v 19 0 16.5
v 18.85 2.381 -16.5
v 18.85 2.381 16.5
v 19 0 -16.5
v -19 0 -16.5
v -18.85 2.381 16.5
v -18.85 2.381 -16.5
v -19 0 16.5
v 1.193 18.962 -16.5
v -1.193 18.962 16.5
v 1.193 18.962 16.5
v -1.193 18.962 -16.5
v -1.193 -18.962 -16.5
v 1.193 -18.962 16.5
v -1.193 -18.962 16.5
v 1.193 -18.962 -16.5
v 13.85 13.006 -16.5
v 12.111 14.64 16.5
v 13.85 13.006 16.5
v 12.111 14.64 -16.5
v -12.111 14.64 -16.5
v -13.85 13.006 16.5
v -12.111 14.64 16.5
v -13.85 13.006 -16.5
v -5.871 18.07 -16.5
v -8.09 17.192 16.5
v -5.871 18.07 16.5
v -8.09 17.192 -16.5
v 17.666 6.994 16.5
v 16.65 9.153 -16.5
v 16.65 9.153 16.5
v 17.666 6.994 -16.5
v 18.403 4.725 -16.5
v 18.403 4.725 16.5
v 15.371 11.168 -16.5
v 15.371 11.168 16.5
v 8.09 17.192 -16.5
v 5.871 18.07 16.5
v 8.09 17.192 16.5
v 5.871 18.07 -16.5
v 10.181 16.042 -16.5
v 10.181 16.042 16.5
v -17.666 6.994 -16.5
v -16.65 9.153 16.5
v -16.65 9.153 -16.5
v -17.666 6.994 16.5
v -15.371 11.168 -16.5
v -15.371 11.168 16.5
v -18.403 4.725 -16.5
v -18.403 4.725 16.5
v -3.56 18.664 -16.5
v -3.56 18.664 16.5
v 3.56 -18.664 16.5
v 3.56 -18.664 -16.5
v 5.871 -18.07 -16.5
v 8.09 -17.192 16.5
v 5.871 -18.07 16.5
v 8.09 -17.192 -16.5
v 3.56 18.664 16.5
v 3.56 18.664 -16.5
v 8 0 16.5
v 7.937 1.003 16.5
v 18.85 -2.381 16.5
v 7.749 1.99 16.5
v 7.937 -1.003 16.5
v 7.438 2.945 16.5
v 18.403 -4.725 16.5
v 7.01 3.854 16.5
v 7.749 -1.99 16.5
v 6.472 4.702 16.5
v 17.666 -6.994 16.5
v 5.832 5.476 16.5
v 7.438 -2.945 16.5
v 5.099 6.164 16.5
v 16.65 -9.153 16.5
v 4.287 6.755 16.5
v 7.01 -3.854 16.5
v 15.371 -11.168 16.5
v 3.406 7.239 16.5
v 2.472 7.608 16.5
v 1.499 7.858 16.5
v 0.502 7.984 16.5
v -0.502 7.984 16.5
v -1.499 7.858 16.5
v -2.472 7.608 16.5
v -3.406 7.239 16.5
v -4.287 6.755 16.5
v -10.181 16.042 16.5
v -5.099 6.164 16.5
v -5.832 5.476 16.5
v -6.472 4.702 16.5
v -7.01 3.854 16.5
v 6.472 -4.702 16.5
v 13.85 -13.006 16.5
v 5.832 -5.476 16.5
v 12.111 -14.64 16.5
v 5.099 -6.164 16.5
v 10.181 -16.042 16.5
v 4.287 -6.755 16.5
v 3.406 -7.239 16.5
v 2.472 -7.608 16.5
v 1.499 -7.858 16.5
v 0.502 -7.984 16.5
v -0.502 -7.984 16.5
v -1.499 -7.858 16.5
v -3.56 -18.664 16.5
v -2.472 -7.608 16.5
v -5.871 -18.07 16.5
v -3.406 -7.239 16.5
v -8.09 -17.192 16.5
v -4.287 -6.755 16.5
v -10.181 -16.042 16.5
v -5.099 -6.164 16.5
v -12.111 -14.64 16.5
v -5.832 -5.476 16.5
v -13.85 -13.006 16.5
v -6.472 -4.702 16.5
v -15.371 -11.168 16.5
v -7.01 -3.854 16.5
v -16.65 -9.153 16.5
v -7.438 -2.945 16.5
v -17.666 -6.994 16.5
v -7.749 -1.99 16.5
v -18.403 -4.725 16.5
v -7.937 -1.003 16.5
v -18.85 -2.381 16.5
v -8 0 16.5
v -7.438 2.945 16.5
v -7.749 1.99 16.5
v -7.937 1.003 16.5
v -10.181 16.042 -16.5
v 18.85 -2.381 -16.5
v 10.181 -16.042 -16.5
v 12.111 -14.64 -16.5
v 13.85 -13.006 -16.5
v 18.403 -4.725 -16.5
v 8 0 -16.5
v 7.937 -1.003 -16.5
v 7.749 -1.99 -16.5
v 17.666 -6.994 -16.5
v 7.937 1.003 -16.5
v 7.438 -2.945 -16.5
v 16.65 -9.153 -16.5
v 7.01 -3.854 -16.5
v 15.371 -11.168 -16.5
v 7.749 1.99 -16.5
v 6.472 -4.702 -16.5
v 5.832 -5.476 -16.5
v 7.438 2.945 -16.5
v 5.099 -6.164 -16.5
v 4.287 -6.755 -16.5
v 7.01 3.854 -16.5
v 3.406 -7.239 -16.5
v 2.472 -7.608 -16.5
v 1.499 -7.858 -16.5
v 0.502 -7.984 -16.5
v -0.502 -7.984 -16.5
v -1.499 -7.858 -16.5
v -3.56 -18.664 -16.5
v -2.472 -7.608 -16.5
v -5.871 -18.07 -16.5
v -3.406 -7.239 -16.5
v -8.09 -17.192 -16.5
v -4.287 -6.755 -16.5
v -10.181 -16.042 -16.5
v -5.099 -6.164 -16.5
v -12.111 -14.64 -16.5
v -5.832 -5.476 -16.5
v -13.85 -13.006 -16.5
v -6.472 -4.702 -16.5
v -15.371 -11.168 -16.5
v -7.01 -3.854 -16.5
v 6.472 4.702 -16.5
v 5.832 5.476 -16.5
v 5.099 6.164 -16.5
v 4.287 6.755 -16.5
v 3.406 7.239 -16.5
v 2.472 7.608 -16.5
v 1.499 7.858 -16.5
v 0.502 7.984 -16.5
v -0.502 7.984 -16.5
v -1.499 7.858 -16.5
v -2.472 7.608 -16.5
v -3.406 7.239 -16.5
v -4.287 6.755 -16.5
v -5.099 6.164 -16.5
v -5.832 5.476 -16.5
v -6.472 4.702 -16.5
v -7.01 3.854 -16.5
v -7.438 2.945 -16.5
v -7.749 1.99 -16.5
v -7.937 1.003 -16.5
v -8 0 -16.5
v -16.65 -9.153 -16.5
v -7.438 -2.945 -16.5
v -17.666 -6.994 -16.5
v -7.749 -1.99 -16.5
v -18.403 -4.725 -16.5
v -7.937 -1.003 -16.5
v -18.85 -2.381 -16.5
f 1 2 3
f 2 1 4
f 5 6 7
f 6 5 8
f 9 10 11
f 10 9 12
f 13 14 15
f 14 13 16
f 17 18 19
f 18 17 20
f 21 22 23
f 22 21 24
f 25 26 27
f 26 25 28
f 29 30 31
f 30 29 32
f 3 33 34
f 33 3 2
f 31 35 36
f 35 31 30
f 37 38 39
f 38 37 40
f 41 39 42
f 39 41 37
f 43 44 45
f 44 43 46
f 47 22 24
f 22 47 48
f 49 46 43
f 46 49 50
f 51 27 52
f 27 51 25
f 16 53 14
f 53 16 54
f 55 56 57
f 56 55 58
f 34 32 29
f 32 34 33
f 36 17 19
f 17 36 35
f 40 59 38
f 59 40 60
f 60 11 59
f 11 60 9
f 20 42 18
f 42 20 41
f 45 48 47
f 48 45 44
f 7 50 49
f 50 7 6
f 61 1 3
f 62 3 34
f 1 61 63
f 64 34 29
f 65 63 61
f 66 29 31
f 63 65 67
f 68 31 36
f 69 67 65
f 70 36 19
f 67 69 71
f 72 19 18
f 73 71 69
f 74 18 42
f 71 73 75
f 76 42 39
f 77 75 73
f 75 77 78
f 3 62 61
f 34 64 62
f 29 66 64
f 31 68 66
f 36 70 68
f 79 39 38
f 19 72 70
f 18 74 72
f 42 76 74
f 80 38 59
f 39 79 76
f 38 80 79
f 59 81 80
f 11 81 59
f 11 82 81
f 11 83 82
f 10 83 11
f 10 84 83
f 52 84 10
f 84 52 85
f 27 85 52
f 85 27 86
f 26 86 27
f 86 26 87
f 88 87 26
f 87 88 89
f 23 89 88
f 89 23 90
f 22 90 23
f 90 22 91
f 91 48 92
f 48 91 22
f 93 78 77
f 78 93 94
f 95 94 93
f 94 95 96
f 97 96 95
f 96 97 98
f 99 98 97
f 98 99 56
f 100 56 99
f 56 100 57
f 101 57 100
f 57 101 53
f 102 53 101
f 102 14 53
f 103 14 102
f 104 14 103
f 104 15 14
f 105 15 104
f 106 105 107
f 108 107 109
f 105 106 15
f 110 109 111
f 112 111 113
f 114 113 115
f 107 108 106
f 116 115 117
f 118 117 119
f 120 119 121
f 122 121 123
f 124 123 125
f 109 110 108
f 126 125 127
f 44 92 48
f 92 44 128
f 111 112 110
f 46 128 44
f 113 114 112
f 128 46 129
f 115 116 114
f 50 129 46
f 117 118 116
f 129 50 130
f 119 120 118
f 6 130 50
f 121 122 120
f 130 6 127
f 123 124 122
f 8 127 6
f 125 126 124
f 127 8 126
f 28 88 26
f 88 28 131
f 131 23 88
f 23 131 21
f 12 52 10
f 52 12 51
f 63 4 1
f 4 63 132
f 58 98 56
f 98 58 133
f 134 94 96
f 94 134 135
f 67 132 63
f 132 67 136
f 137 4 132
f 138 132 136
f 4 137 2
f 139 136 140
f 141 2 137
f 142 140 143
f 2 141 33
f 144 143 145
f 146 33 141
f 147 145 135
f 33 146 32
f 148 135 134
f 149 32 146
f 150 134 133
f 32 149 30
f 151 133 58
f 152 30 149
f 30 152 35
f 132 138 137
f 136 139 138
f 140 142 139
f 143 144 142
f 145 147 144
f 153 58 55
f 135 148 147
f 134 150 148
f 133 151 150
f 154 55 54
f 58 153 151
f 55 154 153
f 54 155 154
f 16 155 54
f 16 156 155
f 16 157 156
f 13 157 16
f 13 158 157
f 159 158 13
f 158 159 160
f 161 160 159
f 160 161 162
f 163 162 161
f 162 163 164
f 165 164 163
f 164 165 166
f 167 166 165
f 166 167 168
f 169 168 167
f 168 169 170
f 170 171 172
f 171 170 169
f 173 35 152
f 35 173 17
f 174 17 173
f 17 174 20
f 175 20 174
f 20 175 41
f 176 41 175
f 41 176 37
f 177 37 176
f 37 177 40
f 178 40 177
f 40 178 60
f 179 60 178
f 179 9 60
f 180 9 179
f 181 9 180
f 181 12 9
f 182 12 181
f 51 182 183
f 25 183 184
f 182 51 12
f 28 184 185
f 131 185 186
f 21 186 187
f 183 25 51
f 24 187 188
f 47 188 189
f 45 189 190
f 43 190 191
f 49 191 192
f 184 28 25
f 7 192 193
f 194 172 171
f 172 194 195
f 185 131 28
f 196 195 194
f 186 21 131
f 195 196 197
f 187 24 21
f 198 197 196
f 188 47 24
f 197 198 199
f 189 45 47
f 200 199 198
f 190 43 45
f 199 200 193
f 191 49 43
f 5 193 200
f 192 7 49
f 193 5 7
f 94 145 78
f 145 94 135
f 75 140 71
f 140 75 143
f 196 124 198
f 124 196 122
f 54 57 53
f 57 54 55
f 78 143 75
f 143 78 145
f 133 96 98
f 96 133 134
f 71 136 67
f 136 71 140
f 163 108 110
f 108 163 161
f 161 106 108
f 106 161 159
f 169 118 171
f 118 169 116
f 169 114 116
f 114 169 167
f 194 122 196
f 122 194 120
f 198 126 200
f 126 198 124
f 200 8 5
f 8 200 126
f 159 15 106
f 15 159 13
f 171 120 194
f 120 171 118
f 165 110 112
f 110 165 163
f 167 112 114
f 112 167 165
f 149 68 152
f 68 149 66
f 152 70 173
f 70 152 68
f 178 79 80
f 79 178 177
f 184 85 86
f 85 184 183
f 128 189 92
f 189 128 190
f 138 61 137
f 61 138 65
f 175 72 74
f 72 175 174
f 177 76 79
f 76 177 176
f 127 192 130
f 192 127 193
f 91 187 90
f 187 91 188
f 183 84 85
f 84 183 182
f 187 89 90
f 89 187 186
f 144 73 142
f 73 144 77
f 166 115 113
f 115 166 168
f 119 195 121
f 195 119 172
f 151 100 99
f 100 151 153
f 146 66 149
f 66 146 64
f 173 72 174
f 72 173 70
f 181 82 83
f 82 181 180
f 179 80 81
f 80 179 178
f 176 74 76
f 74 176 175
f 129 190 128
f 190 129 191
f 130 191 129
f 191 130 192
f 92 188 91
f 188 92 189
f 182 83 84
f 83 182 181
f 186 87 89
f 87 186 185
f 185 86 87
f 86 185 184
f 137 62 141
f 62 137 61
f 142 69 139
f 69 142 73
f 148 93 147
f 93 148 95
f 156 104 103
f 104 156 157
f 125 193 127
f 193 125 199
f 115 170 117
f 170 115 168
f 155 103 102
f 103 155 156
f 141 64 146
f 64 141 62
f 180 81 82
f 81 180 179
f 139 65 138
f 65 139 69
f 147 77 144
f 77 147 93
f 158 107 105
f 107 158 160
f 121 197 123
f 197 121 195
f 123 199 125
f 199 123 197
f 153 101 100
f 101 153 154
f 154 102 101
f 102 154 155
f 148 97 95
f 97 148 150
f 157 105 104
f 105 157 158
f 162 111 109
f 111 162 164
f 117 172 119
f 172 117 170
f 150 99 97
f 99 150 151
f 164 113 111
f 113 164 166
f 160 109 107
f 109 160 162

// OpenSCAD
$fn = 50;


difference() {
	union() {
		translate(v = [0, 0, -16.5000000000]) {
			cylinder(h = 33, r = 19.0000000000);
		}
	}
	union() {
		translate(v = [0, 0, -100.0000000000]) {
			cylinder(h = 200, r = 8);
		}
	}
}
